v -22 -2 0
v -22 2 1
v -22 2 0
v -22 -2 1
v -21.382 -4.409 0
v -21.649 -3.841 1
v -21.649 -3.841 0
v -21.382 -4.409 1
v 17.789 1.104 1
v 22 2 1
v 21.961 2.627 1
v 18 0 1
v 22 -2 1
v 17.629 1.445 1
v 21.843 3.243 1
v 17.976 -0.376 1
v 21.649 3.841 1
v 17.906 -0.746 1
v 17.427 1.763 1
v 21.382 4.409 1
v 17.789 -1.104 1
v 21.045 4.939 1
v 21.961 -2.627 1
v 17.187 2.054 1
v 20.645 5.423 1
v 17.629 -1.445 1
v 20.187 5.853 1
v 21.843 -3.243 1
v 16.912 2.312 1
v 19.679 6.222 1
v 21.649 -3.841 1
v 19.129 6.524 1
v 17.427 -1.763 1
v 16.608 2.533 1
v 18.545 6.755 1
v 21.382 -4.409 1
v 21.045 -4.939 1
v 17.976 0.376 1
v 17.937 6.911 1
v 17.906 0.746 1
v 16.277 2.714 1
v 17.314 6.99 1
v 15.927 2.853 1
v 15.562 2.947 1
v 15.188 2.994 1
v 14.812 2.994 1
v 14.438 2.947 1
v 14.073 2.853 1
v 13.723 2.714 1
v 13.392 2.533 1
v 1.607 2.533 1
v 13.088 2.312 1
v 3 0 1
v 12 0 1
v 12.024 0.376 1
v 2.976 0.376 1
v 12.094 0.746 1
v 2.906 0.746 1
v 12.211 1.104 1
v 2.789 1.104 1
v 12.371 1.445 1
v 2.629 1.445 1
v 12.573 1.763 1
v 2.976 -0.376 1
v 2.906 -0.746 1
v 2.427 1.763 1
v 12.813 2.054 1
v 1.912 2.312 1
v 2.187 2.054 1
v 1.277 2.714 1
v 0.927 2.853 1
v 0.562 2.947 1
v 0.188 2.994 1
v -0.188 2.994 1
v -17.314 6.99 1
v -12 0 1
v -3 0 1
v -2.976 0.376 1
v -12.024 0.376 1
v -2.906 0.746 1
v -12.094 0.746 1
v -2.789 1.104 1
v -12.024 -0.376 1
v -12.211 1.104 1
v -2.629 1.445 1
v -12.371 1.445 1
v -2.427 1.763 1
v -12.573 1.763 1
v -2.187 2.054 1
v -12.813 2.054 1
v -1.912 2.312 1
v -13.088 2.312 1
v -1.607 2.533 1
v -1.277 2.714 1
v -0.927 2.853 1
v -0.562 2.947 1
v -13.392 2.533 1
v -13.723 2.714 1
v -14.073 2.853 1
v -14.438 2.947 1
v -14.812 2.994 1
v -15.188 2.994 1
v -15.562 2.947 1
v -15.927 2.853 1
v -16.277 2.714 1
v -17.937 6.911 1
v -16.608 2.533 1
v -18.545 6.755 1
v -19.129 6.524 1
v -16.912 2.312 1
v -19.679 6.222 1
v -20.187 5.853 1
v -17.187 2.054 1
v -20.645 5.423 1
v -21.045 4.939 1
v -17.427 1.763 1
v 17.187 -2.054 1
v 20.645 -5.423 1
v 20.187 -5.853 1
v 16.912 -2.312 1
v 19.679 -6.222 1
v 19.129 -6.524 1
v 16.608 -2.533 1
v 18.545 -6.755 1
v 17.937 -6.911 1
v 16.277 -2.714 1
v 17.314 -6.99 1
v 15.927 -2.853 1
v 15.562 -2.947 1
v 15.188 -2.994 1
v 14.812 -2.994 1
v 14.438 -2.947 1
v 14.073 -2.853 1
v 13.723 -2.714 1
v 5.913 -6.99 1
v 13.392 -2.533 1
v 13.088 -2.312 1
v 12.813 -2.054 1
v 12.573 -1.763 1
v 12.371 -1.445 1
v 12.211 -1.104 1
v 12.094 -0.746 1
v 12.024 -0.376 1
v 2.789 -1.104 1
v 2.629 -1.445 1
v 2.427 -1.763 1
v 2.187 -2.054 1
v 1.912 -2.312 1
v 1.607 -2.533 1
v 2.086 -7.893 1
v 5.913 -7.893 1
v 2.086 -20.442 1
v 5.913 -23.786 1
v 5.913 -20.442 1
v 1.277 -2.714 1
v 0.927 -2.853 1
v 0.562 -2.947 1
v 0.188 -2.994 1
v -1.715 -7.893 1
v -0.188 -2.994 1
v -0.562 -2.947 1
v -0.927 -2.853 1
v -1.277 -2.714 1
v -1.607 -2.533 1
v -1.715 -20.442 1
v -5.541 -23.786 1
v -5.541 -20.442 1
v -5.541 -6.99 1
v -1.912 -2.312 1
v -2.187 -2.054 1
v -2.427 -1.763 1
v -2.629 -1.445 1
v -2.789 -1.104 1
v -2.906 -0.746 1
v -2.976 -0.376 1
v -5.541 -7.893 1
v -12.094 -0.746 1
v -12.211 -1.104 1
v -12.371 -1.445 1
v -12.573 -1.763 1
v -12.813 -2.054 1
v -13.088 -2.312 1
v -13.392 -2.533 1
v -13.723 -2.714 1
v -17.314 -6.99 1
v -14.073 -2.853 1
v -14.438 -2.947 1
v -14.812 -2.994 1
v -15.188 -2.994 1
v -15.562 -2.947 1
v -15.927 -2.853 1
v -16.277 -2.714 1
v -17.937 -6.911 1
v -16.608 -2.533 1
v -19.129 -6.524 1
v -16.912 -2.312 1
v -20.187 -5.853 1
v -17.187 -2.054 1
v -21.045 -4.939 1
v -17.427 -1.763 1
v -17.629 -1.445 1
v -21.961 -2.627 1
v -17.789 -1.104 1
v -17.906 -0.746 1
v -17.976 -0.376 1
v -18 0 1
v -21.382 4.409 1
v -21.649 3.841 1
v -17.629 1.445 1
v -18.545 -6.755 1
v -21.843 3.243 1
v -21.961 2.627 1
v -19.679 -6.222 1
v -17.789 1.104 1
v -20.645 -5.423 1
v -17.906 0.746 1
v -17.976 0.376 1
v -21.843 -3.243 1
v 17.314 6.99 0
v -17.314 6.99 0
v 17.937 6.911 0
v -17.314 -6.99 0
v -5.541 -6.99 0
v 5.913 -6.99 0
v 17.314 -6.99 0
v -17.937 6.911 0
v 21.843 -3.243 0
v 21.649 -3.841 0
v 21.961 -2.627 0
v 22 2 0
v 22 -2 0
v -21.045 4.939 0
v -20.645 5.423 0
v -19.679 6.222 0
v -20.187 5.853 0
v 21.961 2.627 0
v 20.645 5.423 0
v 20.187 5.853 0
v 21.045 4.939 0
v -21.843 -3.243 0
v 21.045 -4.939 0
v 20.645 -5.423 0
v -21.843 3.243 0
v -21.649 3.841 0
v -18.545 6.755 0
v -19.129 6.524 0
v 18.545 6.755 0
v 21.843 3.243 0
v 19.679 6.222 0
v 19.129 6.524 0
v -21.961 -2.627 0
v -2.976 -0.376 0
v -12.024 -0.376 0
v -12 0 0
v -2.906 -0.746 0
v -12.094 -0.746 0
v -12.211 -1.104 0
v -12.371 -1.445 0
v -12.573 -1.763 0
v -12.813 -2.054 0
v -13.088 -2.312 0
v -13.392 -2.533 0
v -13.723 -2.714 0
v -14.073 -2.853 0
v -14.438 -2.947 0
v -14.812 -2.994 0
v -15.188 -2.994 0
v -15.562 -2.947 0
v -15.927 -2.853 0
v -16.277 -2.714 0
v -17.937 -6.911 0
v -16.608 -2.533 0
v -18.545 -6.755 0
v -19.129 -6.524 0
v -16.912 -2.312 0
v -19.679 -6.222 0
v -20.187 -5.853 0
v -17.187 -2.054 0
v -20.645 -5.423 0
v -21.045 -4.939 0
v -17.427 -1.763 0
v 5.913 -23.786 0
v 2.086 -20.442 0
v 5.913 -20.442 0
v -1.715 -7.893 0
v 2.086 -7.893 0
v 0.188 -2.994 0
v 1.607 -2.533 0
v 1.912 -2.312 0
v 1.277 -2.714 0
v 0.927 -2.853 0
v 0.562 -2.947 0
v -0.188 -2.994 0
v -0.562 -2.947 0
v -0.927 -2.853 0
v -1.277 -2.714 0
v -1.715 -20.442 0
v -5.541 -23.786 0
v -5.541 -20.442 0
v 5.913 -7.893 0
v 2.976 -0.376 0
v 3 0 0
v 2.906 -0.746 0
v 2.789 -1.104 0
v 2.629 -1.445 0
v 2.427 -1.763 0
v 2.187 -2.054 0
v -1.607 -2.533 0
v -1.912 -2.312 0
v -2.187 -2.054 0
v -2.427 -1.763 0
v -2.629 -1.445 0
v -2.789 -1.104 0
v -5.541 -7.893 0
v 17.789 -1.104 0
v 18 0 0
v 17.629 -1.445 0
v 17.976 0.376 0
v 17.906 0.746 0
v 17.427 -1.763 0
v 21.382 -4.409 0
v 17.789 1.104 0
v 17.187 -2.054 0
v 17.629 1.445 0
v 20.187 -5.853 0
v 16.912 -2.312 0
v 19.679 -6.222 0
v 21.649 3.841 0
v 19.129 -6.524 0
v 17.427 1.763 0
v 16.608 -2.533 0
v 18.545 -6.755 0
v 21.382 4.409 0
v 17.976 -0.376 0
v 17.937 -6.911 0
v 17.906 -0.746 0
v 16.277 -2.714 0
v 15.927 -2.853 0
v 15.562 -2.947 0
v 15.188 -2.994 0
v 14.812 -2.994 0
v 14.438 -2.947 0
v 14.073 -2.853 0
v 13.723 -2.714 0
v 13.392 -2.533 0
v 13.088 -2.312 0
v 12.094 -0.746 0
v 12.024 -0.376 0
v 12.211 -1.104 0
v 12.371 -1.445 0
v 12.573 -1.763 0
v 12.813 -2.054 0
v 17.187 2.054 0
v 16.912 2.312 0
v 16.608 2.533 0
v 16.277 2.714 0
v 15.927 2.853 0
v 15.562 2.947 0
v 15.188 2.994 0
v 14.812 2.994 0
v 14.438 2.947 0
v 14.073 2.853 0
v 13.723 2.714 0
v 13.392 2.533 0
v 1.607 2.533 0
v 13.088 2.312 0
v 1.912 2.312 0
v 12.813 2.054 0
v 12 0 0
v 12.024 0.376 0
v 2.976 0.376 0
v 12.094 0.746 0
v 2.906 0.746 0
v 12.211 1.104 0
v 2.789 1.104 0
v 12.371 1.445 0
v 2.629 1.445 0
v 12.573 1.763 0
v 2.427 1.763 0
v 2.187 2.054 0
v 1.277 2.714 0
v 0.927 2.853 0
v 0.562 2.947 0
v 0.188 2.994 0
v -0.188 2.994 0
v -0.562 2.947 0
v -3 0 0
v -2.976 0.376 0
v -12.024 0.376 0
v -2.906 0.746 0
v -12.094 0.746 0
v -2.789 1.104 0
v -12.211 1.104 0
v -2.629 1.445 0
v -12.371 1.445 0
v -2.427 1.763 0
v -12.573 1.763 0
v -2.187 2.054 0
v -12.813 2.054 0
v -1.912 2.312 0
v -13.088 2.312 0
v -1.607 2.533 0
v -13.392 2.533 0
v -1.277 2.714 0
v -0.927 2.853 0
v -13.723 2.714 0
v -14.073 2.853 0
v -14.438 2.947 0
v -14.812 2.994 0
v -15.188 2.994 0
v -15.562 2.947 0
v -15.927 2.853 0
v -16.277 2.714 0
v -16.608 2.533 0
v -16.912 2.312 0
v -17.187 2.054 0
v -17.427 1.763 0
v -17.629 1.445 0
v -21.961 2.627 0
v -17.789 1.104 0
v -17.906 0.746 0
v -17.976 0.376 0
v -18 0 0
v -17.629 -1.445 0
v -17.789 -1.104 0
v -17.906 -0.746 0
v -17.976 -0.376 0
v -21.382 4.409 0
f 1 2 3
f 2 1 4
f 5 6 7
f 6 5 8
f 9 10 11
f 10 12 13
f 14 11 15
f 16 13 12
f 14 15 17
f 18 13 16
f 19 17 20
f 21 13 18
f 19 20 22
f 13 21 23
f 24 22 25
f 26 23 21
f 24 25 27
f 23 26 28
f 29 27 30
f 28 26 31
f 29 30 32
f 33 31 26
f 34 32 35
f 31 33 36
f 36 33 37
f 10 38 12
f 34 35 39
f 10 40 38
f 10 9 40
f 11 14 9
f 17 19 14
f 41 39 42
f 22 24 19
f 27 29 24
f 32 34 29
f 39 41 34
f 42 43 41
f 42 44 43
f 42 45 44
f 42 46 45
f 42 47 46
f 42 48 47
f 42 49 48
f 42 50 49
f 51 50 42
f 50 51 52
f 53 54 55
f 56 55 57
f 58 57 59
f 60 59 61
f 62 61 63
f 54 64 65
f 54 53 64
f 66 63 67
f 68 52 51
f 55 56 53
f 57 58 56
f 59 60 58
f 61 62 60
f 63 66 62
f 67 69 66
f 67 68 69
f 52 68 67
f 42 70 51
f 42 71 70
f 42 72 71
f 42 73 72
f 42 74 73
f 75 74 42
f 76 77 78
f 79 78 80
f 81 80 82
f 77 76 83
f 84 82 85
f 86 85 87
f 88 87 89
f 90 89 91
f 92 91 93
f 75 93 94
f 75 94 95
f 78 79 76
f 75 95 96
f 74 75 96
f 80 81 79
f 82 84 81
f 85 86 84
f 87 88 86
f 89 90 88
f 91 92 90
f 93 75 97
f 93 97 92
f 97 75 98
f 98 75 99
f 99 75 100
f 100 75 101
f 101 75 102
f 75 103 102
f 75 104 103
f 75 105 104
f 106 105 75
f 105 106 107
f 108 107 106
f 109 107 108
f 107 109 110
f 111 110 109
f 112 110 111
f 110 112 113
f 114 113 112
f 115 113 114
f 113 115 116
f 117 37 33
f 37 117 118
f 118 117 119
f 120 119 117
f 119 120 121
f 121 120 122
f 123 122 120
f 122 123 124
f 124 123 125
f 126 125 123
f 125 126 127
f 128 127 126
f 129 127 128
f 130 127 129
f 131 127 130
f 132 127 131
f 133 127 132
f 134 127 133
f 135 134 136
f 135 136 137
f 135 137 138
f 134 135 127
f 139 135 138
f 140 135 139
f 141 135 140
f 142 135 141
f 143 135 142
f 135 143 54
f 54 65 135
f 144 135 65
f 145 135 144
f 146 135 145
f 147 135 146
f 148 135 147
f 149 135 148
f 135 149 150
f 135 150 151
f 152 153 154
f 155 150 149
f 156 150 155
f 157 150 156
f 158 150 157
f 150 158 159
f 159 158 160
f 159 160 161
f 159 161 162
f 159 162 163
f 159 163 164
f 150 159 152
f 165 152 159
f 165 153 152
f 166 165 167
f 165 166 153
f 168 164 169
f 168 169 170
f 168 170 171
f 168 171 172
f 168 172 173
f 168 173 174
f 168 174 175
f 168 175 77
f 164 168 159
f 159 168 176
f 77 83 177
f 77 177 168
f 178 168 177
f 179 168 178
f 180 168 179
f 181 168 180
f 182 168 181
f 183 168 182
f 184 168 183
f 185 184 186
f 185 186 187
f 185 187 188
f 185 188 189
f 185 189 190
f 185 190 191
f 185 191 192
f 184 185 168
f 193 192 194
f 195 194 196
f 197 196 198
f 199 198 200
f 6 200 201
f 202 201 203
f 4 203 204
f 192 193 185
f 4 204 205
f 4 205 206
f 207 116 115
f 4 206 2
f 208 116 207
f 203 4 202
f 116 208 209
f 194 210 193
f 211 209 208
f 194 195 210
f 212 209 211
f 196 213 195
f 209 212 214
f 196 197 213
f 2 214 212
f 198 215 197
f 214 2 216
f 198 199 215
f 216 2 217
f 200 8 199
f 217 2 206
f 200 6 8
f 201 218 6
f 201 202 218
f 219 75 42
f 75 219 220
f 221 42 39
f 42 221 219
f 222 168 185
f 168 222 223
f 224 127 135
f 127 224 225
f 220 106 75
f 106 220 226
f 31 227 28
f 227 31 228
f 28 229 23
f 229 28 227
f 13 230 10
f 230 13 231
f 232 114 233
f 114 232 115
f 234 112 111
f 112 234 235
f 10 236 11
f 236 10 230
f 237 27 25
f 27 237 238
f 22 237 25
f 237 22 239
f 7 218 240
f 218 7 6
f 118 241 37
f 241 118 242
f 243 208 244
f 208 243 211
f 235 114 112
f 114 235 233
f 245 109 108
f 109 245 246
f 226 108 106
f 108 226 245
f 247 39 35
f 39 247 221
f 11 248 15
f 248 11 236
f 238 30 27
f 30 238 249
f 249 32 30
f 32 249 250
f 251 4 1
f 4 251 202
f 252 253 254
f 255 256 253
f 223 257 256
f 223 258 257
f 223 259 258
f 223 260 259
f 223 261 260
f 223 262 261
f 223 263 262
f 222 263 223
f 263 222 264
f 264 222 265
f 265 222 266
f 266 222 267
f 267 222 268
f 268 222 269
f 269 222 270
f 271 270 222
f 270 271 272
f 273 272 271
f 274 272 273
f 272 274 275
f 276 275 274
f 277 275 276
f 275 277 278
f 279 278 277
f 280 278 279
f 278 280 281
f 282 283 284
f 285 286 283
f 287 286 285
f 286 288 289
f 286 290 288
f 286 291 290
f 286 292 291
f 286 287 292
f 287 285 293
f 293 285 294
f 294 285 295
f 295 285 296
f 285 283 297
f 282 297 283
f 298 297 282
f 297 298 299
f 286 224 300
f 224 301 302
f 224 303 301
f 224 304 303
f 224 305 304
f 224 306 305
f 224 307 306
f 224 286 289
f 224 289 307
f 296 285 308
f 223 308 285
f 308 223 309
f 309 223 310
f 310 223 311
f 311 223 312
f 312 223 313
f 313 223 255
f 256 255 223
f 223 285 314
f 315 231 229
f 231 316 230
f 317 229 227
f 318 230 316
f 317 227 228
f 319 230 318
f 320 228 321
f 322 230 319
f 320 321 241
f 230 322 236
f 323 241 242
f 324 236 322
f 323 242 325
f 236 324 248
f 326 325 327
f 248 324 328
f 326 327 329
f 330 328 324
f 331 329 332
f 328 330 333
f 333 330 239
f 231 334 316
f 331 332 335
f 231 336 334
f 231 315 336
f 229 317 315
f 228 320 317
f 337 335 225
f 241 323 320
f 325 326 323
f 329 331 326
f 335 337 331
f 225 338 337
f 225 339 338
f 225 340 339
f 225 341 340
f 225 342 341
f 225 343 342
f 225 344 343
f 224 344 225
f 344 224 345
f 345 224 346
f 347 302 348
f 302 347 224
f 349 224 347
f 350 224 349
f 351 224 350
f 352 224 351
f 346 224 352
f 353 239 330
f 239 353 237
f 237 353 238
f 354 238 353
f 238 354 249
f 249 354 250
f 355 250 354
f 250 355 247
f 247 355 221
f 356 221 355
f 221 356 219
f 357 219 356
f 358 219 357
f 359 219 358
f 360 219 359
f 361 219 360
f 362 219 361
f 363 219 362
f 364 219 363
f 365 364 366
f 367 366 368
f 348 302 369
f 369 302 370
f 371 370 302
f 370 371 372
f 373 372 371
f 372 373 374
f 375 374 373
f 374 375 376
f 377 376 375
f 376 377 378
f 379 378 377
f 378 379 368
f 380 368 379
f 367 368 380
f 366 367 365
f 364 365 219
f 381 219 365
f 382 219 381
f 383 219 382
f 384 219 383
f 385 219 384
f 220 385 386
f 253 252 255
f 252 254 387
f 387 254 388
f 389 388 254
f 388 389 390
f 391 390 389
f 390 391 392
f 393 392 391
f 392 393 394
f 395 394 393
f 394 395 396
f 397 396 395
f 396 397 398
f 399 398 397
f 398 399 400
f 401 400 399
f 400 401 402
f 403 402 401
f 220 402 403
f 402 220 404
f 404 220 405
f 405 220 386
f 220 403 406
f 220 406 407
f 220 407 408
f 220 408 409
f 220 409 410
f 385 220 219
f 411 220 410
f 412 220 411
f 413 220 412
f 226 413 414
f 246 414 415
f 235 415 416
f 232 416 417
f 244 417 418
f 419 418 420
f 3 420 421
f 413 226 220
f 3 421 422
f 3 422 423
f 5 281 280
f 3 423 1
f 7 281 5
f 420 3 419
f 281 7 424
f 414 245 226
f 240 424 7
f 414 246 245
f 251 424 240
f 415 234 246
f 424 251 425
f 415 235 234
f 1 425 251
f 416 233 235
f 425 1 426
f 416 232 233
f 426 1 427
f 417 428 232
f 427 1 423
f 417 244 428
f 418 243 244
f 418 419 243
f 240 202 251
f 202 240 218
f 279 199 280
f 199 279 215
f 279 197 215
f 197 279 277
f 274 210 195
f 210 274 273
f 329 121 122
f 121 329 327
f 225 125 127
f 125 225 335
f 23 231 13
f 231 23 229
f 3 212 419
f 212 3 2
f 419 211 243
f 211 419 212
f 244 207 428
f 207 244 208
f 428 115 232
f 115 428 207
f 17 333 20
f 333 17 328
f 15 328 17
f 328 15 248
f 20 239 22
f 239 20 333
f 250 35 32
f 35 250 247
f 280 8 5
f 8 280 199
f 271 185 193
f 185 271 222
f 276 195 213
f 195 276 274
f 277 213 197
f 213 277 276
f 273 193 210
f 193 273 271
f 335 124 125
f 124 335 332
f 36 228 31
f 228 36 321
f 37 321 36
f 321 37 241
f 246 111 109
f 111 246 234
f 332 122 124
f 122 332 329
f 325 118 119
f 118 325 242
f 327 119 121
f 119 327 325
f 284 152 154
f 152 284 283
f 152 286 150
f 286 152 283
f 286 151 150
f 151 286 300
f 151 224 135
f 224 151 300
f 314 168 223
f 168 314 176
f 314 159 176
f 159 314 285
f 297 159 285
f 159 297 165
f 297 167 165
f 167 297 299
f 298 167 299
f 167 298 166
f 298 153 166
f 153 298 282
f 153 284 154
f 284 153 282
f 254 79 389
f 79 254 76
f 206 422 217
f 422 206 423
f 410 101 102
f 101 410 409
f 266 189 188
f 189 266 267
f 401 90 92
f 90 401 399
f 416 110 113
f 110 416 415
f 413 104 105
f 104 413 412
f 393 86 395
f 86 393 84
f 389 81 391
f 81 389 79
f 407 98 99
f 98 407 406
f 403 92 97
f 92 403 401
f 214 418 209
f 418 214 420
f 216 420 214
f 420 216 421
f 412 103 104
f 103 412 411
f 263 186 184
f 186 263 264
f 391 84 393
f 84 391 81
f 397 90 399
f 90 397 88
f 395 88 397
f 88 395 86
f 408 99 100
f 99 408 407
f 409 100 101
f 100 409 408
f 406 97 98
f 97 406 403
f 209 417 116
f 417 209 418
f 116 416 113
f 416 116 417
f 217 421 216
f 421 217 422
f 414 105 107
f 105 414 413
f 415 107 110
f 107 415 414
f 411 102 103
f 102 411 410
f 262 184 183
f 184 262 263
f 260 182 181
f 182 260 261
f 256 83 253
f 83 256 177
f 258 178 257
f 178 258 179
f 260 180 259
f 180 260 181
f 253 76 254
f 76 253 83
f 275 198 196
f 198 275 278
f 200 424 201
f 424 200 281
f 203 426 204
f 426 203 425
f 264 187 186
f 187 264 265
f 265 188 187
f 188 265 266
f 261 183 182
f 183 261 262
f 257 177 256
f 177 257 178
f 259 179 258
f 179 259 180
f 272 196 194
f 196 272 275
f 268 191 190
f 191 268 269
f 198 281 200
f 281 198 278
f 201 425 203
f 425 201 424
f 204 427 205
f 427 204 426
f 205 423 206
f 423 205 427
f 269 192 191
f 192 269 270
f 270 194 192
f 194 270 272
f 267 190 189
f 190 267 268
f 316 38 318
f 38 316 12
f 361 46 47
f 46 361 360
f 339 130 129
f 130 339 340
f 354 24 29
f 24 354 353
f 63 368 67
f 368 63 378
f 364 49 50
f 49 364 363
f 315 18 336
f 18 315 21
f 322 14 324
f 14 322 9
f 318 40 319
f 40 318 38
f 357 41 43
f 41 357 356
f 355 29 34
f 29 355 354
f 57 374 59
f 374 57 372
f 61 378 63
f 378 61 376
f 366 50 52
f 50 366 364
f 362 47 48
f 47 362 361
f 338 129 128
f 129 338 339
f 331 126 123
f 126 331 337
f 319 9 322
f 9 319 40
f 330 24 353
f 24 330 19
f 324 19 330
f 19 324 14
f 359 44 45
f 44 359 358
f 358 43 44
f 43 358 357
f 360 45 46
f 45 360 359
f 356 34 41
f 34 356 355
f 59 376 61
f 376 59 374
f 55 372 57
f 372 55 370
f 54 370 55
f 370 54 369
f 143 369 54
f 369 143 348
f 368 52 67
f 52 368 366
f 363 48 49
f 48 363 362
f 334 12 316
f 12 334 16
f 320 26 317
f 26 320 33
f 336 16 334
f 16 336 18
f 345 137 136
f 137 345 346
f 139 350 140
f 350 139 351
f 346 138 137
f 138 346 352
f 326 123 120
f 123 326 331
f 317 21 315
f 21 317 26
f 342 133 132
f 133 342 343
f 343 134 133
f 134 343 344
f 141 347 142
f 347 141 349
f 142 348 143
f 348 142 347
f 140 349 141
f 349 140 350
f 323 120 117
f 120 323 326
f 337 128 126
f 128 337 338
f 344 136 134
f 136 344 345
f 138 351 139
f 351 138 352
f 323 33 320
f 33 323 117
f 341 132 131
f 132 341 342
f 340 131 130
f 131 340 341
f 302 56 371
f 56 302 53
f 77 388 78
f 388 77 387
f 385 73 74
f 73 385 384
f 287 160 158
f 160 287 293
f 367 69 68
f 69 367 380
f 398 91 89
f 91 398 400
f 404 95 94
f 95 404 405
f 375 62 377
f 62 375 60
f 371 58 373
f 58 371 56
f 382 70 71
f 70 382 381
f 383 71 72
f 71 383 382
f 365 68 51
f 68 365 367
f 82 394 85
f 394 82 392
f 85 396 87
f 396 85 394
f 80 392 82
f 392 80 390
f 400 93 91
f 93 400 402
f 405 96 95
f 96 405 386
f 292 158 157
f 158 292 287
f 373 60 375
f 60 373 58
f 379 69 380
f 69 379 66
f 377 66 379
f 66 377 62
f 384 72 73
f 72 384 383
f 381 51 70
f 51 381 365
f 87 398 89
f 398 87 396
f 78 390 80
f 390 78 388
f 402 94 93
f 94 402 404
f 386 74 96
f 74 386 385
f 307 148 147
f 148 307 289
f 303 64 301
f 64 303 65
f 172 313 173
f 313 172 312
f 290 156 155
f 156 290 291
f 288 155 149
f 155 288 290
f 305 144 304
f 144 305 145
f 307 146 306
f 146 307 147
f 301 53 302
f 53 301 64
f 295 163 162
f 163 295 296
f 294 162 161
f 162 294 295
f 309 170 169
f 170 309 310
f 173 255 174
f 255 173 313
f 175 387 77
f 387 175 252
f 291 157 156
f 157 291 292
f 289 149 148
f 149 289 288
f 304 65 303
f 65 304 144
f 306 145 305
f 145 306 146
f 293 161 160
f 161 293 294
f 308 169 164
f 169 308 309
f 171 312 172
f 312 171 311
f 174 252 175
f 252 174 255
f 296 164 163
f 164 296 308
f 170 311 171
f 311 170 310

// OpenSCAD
$fn = 50;


difference() {
	union() {
		translate(v = [0, 0, 0]) {
			rotate(a = [0, 0, 0]) {
				hull() {
					translate(v = [-17.0000000000, 2.0000000000, 0]) {
						rotate(a = [0, 0, 0]) {
							translate(v = [0, 0, 0]) {
								rotate(a = [0, 0, 0]) {
									cylinder(h = 1, r = 5);
								}
							}
						}
					}
					translate(v = [17.0000000000, 2.0000000000, 0]) {
						rotate(a = [0, 0, 0]) {
							translate(v = [0, 0, 0]) {
								rotate(a = [0, 0, 0]) {
									cylinder(h = 1, r = 5);
								}
							}
						}
					}
					translate(v = [-17.0000000000, -2.0000000000, 0]) {
						rotate(a = [0, 0, 0]) {
							translate(v = [0, 0, 0]) {
								rotate(a = [0, 0, 0]) {
									cylinder(h = 1, r = 5);
								}
							}
						}
					}
					translate(v = [17.0000000000, -2.0000000000, 0]) {
						rotate(a = [0, 0, 0]) {
							translate(v = [0, 0, 0]) {
								rotate(a = [0, 0, 0]) {
									cylinder(h = 1, r = 5);
								}
							}
						}
					}
				}
			}
		}
		translate(v = [0, -5, 0]) {
			rotate(a = [0, 0, 0]) {
				linear_extrude(height = 1) {
					text(font = "DejaVu Sans Mono:style=Bold", halign = "center", size = 19.0000000000, text = "I", valign = "top");
				}
			}
		}
	}
	union() {
		translate(v = [-15.0000000000, 0.0000000000, -125.0000000000]) {
			rotate(a = [0, 0, 0]) {
				cylinder(h = 250, r = 3.0000000000);
			}
		}
		translate(v = [15.0000000000, 0.0000000000, -125.0000000000]) {
			rotate(a = [0, 0, 0]) {
				cylinder(h = 250, r = 3.0000000000);
			}
		}
		translate(v = [15.0000000000, 0.0000000000, -125.0000000000]) {
			rotate(a = [0, 0, 0]) {
				cylinder(h = 250, r = 3.0000000000);
			}
		}
		translate(v = [0, 0, -125.0000000000]) {
			rotate(a = [0, 0, 0]) {
				cylinder(h = 250, r = 3.0000000000);
			}
		}
	}
}
